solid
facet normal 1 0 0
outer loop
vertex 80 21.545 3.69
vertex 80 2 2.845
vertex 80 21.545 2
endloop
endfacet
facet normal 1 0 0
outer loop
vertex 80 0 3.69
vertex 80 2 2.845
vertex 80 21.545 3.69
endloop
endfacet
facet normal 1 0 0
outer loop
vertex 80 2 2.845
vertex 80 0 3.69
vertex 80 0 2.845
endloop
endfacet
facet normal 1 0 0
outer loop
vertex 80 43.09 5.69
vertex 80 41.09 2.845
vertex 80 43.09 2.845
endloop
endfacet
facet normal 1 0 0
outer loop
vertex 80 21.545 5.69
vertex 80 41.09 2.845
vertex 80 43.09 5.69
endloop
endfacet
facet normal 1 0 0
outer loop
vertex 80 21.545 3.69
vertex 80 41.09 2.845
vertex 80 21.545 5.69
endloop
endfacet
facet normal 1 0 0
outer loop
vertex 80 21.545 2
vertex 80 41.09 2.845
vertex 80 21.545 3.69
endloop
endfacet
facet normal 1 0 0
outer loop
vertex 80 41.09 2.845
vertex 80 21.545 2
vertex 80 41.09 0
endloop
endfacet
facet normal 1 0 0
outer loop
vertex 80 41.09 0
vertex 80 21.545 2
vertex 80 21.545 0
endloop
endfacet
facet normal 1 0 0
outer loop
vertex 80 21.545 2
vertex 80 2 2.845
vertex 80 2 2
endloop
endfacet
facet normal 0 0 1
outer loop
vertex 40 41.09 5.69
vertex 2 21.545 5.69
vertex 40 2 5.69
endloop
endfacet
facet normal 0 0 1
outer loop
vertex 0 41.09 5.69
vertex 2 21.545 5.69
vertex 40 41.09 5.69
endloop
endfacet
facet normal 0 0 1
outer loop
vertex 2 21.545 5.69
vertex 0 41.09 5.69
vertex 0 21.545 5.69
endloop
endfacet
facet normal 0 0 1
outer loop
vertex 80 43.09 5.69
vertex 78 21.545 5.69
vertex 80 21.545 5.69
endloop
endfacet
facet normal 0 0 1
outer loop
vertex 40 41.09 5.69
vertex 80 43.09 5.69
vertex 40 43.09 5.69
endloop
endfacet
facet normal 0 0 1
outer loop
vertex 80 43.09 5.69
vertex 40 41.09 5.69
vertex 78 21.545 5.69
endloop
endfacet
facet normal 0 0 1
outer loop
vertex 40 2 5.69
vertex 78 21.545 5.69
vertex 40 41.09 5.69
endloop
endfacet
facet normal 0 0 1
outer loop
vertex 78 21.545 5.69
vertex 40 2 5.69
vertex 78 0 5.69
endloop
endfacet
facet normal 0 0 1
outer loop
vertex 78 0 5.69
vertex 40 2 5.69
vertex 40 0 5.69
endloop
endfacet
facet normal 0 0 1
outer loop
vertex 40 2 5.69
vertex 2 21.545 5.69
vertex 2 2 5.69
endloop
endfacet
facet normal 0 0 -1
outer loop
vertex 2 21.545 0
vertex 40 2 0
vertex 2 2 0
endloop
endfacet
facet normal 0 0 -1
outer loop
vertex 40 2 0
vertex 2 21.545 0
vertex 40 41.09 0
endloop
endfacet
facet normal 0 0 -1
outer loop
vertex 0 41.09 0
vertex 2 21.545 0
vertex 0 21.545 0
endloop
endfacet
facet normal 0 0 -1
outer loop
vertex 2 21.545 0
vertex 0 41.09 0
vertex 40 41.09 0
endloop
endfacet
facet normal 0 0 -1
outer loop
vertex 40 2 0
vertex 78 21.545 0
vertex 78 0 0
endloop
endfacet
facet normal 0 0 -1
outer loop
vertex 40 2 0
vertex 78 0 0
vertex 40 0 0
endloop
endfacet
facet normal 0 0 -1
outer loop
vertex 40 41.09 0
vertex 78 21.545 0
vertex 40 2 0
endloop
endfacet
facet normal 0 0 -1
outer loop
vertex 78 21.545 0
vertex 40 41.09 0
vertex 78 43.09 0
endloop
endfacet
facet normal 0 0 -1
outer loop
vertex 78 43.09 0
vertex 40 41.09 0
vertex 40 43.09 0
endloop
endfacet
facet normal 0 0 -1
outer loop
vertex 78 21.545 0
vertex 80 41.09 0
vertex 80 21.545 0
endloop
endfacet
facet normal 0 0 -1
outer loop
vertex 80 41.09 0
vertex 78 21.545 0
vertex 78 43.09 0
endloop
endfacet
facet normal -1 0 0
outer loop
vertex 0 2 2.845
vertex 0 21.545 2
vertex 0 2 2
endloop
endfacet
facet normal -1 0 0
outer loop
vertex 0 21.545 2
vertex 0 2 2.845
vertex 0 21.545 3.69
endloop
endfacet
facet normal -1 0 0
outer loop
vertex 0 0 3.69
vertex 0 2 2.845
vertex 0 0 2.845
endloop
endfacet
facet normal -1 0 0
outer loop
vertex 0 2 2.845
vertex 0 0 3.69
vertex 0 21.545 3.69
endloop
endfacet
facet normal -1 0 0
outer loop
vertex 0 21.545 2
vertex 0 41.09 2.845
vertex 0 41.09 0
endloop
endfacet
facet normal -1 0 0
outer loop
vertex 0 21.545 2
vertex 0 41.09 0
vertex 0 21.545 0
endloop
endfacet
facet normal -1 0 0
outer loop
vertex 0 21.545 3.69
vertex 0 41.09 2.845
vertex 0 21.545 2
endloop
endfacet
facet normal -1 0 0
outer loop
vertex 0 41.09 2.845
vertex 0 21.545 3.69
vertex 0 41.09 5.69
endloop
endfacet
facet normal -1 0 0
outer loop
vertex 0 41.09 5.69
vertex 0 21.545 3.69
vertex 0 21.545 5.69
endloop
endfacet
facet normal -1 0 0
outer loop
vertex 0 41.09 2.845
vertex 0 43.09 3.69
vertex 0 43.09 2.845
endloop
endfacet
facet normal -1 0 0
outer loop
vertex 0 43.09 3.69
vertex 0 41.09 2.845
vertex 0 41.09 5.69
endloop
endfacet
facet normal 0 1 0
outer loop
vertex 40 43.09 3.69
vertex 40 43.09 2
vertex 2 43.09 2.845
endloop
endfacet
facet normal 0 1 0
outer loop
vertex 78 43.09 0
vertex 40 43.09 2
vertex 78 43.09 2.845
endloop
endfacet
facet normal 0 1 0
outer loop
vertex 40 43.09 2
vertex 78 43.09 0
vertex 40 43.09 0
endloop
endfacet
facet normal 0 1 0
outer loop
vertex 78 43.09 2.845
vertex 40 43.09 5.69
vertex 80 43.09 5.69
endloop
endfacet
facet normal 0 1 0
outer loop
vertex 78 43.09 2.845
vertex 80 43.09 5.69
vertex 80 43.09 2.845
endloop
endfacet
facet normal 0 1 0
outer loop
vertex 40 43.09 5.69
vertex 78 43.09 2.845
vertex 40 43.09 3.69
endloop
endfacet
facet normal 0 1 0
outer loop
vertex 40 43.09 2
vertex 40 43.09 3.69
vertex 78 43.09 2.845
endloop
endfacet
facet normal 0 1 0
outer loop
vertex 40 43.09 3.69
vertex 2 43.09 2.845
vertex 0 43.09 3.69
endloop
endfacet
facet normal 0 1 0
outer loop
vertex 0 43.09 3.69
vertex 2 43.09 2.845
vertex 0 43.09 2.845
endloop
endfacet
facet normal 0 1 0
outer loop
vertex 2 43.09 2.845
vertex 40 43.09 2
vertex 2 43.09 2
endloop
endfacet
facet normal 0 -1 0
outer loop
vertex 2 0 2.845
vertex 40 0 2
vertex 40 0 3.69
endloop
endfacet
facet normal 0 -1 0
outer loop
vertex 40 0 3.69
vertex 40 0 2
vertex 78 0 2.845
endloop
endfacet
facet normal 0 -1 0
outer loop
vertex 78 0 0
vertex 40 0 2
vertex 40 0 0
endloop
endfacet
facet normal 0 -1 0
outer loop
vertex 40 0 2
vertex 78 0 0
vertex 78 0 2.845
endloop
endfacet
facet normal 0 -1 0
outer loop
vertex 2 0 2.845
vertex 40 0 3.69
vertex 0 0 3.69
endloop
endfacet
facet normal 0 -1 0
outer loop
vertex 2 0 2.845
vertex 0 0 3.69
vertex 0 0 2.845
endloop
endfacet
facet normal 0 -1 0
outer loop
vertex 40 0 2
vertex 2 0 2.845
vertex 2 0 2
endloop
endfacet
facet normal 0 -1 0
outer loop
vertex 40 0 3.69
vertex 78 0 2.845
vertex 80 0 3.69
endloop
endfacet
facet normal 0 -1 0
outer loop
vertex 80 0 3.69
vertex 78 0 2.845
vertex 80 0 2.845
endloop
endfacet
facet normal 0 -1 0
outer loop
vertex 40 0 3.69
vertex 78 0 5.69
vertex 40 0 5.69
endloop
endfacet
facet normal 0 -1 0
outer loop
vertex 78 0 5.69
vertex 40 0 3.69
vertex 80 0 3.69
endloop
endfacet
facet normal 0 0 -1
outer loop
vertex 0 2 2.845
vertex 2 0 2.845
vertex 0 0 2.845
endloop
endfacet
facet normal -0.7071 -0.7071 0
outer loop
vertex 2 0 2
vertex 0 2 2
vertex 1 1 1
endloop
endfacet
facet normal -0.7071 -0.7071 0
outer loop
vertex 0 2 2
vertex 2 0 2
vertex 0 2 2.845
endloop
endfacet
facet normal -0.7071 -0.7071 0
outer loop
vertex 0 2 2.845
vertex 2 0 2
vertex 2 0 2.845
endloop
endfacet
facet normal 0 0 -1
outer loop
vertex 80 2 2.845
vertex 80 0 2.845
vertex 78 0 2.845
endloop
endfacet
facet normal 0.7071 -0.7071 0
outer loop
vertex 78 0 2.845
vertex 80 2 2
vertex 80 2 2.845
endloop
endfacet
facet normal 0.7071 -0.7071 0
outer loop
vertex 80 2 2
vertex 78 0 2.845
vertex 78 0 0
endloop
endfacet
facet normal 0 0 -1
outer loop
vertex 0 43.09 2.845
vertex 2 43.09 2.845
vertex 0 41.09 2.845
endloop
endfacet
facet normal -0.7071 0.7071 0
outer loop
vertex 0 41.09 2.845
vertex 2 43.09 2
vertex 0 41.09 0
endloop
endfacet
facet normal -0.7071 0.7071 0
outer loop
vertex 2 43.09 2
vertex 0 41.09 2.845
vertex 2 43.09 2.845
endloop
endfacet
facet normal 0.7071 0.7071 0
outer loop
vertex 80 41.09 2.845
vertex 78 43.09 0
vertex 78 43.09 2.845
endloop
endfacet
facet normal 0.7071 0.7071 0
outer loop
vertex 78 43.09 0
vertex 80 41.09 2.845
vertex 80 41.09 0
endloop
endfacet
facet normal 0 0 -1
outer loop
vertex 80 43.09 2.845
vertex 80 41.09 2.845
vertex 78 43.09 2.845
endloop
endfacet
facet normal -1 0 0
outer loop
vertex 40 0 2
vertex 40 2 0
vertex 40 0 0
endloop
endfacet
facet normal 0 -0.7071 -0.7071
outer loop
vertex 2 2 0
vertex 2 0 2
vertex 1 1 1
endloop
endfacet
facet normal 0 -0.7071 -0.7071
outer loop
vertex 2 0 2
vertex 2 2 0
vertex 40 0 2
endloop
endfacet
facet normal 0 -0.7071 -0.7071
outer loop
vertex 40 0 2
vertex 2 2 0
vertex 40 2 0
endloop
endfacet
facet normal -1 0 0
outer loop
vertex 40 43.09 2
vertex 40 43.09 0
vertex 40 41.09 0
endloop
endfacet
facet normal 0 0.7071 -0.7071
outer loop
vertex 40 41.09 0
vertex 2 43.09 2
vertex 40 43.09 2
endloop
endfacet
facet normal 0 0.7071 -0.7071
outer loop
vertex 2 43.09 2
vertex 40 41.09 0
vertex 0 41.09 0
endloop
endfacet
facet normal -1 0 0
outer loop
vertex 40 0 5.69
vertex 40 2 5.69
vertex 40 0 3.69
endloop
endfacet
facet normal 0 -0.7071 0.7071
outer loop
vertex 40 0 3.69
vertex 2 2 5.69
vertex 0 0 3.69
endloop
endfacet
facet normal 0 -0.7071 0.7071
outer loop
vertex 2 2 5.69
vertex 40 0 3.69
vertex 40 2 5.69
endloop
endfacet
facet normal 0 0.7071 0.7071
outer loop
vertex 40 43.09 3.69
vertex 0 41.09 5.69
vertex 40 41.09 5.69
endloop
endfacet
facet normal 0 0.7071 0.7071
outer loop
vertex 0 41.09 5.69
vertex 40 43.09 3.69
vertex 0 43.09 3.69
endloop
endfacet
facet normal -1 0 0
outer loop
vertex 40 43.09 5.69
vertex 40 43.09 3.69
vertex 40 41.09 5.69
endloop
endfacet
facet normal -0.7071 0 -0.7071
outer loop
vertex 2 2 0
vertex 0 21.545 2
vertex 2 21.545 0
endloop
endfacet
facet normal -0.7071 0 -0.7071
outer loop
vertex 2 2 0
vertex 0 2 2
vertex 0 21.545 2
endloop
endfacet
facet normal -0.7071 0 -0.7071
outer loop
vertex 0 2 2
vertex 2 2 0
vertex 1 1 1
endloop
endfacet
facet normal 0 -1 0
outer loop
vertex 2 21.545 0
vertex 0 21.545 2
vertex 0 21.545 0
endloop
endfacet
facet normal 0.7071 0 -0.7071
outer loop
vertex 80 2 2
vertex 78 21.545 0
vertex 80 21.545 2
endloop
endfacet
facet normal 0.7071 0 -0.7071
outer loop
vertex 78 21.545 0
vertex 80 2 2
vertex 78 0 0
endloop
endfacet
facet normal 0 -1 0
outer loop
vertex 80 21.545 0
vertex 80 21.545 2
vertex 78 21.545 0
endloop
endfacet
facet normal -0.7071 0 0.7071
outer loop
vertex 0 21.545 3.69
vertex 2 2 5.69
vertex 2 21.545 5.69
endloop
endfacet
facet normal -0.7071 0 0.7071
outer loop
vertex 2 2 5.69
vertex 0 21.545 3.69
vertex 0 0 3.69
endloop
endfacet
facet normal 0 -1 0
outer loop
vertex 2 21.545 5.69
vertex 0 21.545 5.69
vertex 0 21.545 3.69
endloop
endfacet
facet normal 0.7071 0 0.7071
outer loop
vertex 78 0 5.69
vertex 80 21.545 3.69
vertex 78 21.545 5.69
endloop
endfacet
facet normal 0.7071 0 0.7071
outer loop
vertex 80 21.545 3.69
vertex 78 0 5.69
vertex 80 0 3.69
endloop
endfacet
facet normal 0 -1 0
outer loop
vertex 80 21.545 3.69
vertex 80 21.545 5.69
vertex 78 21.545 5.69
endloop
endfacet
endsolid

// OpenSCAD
/* doodle-meta {"version":1,"parameters":{"width":{"label":"Overall width","description":"Changes the body width along X","unit":"mm","feature":"body_width"},"depth":{"label":"Overall depth","description":"Changes the body depth along Y","unit":"mm","feature":"body_depth"},"height":{"label":"Overall height","description":"Changes the body height along Z","unit":"mm","feature":"body_height"},"chamfer_size":{"label":"Chamfer size","description":"Size of the 45-degree chamfer on all edges","unit":"mm","feature":"chamfer"}},"features":{"body_width":{"kind":"dimension","axis":"x","label":"Overall width"},"body_depth":{"kind":"dimension","axis":"y","label":"Overall depth"},"body_height":{"kind":"dimension","axis":"z","label":"Overall height"},"chamfer":{"kind":"region","label":"Chamfered edges","min":[0,0,0],"max":[{"parameter":"width","scale":1,"offset":0},{"parameter":"depth","scale":1,"offset":0},{"parameter":"height","scale":1,"offset":0}]}}} */

// User-editable parameters
width = 80.0;
depth = 43.09;
height = 5.69;
chamfer_size = 2.0;

// Derived constants (not user-editable)
eps = 0.01;

// Module to create the chamfered block
module chamfered_block() {
    // Start with the main rectangular block
    // Positioned so the bottom is at Z=0
    difference() {
        // Main body
        cube([width, depth, height], center=false);
        
        // Subtract chamfers from all 12 edges
        
        // 4 Vertical edges (along Z)
        // Bottom-Left-Front (X=0, Y=0)
        translate([0, 0, -eps])
            rotate([0, 0, 45])
                cube([chamfer_size * sqrt(2), chamfer_size * sqrt(2), height + 2*eps], center=true);
                
        // Bottom-Right-Front (X=width, Y=0)
        translate([width, 0, -eps])
            rotate([0, 0, -45])
                cube([chamfer_size * sqrt(2), chamfer_size * sqrt(2), height + 2*eps], center=true);
                
        // Bottom-Left-Back (X=0, Y=depth)
        translate([0, depth, -eps])
            rotate([0, 0, 135])
                cube([chamfer_size * sqrt(2), chamfer_size * sqrt(2), height + 2*eps], center=true);
                
        // Bottom-Right-Back (X=width, Y=depth)
        translate([width, depth, -eps])
            rotate([0, 0, -135])
                cube([chamfer_size * sqrt(2), chamfer_size * sqrt(2), height + 2*eps], center=true);

        // 4 Horizontal edges along X (Top and Bottom, Front and Back faces)
        // Bottom-Front (Y=0, Z=0)
        translate([-eps, 0, 0])
            rotate([45, 0, 0])
                cube([width + 2*eps, chamfer_size * sqrt(2), chamfer_size * sqrt(2)], center=true);
                
        // Bottom-Back (Y=depth, Z=0)
        translate([-eps, depth, 0])
            rotate([-45, 0, 0])
                cube([width + 2*eps, chamfer_size * sqrt(2), chamfer_size * sqrt(2)], center=true);
                
        // Top-Front (Y=0, Z=height)
        translate([-eps, 0, height])
            rotate([-45, 0, 0])
                cube([width + 2*eps, chamfer_size * sqrt(2), chamfer_size * sqrt(2)], center=true);
                
        // Top-Back (Y=depth, Z=height)
        translate([-eps, depth, height])
            rotate([45, 0, 0])
                cube([width + 2*eps, chamfer_size * sqrt(2), chamfer_size * sqrt(2)], center=true);

        // 4 Horizontal edges along Y (Top and Bottom, Left and Right faces)
        // Bottom-Left (X=0, Z=0)
        translate([0, -eps, 0])
            rotate([0, -45, 0])
                cube([chamfer_size * sqrt(2), depth + 2*eps, chamfer_size * sqrt(2)], center=true);
                
        // Bottom-Right (X=width, Z=0)
        translate([width, -eps, 0])
            rotate([0, 45, 0])
                cube([chamfer_size * sqrt(2), depth + 2*eps, chamfer_size * sqrt(2)], center=true);
                
        // Top-Left (X=0, Z=height)
        translate([0, -eps, height])
            rotate([0, 45, 0])
                cube([chamfer_size * sqrt(2), depth + 2*eps, chamfer_size * sqrt(2)], center=true);
                
        // Top-Right (X=width, Z=height)
        translate([width, -eps, height])
            rotate([0, -45, 0])
                cube([chamfer_size * sqrt(2), depth + 2*eps, chamfer_size * sqrt(2)], center=true);
    }
}

// Instantiate the design
chamfered_block();
